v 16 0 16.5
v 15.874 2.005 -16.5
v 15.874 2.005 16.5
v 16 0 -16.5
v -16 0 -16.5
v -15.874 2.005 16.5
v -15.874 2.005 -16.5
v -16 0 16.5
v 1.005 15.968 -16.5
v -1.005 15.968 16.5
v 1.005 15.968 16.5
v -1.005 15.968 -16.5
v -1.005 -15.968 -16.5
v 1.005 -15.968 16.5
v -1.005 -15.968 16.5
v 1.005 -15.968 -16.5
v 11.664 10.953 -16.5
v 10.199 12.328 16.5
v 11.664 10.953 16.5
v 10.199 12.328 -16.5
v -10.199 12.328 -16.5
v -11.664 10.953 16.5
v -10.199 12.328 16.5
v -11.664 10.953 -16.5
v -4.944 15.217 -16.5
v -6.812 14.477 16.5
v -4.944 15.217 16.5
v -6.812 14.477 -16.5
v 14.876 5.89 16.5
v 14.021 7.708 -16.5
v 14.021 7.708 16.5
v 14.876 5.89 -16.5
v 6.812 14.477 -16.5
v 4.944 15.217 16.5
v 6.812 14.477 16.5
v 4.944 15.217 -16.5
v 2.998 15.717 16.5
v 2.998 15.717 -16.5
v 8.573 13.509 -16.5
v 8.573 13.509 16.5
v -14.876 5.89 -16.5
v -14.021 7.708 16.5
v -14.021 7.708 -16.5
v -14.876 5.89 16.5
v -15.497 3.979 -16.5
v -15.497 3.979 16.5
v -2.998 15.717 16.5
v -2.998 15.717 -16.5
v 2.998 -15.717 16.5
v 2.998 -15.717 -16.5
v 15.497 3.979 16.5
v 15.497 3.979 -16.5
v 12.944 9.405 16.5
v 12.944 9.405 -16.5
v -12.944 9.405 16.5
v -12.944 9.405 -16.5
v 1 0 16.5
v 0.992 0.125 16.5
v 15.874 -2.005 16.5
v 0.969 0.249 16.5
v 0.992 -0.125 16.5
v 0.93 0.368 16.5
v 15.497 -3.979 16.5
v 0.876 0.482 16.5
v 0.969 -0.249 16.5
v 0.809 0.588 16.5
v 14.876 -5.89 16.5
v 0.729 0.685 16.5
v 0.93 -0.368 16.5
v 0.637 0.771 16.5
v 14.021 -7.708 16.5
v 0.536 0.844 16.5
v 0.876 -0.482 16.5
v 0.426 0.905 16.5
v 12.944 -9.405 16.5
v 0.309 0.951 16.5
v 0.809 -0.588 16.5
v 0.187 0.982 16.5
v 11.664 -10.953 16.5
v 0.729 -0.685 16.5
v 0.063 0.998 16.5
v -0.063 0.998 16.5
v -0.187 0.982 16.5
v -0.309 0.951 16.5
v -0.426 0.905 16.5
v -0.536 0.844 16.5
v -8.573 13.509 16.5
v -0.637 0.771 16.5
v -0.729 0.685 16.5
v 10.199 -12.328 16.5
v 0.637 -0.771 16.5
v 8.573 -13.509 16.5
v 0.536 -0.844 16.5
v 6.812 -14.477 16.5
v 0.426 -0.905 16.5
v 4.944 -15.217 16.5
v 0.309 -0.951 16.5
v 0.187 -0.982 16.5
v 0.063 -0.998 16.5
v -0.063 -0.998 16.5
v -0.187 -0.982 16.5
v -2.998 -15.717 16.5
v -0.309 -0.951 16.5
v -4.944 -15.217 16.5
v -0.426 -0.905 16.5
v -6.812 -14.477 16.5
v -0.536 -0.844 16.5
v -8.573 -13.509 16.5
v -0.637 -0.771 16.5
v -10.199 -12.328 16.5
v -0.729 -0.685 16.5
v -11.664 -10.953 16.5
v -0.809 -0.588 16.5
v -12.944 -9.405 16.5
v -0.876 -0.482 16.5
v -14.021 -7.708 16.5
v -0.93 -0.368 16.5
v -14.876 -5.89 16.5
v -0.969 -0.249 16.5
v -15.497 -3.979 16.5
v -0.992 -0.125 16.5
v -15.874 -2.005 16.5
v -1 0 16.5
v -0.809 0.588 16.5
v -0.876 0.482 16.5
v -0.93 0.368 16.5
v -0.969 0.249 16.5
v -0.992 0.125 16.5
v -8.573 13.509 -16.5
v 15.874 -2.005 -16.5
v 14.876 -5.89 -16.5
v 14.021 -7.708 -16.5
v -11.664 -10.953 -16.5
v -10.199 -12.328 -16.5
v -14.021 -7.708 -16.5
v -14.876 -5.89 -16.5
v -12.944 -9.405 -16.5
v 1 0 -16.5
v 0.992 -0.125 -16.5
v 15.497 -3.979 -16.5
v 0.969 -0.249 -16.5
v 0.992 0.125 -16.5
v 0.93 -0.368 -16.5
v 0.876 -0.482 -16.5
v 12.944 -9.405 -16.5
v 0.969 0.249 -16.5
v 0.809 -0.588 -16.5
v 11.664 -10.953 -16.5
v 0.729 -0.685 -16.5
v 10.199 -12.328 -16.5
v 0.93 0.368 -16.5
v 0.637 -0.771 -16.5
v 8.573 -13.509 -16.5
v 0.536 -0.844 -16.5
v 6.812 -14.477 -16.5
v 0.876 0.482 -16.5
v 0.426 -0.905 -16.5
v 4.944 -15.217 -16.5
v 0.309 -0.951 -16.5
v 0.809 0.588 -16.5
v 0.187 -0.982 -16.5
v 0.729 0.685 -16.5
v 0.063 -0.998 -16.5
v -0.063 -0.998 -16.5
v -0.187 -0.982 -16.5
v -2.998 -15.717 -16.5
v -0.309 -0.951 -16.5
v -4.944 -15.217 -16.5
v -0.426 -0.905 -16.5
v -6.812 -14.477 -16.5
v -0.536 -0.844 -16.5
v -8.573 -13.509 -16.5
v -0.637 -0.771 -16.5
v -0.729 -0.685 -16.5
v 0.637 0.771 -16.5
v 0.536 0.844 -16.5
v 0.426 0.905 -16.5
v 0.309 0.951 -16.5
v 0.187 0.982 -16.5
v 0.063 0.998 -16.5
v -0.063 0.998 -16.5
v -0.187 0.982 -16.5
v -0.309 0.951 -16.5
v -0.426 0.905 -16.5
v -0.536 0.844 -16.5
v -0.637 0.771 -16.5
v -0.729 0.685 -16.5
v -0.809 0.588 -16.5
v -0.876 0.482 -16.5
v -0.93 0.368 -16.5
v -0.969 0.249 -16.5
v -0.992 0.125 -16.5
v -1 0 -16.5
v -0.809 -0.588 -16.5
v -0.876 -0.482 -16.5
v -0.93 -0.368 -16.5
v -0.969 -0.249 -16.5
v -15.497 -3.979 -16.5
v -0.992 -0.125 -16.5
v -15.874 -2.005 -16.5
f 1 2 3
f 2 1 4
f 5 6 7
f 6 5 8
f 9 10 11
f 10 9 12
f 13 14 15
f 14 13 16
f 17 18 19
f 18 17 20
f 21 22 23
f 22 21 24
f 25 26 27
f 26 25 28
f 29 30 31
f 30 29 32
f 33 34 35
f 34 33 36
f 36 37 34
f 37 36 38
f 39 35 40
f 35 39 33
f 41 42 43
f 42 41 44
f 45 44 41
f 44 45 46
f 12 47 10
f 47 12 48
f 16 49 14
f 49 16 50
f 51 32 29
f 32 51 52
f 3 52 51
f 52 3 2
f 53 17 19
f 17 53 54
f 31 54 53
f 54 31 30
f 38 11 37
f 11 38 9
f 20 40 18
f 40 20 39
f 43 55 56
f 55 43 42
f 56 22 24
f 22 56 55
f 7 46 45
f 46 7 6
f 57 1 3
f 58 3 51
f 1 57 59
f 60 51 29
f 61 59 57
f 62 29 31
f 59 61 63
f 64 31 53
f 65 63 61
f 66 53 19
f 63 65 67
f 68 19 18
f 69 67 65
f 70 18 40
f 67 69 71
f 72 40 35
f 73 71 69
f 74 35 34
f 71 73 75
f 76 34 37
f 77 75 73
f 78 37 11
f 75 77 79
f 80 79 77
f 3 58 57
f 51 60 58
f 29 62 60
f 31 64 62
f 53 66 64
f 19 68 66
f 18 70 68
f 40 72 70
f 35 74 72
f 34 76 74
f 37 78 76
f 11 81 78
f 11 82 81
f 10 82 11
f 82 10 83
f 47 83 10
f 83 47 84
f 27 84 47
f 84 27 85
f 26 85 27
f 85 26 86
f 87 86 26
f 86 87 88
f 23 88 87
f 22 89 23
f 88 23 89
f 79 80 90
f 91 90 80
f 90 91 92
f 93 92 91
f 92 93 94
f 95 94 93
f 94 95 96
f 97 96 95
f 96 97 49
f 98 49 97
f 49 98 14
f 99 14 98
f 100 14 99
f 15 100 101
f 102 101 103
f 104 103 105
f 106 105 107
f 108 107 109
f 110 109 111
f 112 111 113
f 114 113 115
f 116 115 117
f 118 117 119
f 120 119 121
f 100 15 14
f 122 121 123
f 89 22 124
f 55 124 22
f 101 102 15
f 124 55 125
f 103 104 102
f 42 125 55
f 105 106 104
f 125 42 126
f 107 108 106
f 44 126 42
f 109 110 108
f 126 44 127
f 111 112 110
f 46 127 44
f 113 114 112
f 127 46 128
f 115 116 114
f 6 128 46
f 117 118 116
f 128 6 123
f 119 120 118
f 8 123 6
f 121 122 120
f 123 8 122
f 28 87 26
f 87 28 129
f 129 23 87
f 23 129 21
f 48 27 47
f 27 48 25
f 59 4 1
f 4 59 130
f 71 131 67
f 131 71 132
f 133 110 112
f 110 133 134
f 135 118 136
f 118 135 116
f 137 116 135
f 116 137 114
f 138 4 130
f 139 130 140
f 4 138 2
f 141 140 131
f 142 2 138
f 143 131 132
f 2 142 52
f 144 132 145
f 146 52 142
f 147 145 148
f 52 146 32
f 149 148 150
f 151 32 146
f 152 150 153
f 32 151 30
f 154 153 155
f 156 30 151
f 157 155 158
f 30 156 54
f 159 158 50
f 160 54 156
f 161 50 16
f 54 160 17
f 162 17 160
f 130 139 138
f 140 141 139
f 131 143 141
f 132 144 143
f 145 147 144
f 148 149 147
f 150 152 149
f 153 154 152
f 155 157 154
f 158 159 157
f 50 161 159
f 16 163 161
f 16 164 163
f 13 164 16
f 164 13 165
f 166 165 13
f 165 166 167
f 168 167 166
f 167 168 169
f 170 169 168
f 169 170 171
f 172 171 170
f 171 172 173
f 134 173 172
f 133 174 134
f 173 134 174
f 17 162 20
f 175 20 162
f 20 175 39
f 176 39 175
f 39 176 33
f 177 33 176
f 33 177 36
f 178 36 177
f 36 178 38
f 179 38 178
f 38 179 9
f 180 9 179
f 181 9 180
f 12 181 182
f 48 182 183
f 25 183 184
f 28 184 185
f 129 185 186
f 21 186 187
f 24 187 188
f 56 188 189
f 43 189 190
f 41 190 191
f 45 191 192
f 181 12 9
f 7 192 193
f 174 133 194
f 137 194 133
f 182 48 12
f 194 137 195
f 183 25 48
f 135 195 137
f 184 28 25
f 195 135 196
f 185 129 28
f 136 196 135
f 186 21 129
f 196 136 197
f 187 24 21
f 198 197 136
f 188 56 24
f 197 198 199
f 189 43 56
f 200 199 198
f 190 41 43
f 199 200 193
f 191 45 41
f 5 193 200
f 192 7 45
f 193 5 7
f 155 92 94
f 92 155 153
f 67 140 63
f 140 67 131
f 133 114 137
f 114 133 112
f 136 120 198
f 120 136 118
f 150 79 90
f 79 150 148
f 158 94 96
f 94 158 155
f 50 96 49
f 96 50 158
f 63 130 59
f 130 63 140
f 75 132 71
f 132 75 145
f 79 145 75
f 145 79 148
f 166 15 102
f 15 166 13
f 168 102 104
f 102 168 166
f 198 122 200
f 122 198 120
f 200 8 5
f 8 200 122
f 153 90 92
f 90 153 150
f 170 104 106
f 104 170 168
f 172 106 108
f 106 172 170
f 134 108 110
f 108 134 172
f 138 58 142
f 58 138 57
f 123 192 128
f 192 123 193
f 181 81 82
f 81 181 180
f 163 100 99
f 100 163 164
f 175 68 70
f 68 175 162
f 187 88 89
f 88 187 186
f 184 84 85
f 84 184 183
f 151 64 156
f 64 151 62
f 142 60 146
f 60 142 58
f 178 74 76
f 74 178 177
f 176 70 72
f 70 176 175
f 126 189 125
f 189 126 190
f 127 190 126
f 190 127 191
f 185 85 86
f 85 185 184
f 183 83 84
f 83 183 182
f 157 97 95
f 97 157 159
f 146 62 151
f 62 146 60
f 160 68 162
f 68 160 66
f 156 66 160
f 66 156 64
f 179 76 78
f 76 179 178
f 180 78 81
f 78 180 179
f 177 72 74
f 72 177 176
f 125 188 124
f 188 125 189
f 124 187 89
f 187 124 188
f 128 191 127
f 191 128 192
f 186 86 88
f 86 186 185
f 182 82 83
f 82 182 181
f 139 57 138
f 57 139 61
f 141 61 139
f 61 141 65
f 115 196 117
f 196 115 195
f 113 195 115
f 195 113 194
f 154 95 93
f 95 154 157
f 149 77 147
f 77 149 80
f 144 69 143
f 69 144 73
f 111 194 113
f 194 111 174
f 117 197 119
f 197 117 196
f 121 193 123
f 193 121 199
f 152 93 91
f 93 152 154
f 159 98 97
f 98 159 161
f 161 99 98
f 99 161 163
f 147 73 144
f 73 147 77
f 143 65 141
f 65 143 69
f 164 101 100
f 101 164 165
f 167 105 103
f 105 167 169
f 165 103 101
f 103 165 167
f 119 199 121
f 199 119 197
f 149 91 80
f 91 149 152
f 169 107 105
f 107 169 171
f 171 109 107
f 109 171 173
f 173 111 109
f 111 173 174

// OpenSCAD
$fn = 50;


difference() {
	union() {
		translate(v = [0, 0, -16.5000000000]) {
			cylinder(h = 33, r = 16.0000000000);
		}
	}
	union() {
		translate(v = [0, 0, -100.0000000000]) {
			cylinder(h = 200, r = 1.0000000000);
		}
	}
}
